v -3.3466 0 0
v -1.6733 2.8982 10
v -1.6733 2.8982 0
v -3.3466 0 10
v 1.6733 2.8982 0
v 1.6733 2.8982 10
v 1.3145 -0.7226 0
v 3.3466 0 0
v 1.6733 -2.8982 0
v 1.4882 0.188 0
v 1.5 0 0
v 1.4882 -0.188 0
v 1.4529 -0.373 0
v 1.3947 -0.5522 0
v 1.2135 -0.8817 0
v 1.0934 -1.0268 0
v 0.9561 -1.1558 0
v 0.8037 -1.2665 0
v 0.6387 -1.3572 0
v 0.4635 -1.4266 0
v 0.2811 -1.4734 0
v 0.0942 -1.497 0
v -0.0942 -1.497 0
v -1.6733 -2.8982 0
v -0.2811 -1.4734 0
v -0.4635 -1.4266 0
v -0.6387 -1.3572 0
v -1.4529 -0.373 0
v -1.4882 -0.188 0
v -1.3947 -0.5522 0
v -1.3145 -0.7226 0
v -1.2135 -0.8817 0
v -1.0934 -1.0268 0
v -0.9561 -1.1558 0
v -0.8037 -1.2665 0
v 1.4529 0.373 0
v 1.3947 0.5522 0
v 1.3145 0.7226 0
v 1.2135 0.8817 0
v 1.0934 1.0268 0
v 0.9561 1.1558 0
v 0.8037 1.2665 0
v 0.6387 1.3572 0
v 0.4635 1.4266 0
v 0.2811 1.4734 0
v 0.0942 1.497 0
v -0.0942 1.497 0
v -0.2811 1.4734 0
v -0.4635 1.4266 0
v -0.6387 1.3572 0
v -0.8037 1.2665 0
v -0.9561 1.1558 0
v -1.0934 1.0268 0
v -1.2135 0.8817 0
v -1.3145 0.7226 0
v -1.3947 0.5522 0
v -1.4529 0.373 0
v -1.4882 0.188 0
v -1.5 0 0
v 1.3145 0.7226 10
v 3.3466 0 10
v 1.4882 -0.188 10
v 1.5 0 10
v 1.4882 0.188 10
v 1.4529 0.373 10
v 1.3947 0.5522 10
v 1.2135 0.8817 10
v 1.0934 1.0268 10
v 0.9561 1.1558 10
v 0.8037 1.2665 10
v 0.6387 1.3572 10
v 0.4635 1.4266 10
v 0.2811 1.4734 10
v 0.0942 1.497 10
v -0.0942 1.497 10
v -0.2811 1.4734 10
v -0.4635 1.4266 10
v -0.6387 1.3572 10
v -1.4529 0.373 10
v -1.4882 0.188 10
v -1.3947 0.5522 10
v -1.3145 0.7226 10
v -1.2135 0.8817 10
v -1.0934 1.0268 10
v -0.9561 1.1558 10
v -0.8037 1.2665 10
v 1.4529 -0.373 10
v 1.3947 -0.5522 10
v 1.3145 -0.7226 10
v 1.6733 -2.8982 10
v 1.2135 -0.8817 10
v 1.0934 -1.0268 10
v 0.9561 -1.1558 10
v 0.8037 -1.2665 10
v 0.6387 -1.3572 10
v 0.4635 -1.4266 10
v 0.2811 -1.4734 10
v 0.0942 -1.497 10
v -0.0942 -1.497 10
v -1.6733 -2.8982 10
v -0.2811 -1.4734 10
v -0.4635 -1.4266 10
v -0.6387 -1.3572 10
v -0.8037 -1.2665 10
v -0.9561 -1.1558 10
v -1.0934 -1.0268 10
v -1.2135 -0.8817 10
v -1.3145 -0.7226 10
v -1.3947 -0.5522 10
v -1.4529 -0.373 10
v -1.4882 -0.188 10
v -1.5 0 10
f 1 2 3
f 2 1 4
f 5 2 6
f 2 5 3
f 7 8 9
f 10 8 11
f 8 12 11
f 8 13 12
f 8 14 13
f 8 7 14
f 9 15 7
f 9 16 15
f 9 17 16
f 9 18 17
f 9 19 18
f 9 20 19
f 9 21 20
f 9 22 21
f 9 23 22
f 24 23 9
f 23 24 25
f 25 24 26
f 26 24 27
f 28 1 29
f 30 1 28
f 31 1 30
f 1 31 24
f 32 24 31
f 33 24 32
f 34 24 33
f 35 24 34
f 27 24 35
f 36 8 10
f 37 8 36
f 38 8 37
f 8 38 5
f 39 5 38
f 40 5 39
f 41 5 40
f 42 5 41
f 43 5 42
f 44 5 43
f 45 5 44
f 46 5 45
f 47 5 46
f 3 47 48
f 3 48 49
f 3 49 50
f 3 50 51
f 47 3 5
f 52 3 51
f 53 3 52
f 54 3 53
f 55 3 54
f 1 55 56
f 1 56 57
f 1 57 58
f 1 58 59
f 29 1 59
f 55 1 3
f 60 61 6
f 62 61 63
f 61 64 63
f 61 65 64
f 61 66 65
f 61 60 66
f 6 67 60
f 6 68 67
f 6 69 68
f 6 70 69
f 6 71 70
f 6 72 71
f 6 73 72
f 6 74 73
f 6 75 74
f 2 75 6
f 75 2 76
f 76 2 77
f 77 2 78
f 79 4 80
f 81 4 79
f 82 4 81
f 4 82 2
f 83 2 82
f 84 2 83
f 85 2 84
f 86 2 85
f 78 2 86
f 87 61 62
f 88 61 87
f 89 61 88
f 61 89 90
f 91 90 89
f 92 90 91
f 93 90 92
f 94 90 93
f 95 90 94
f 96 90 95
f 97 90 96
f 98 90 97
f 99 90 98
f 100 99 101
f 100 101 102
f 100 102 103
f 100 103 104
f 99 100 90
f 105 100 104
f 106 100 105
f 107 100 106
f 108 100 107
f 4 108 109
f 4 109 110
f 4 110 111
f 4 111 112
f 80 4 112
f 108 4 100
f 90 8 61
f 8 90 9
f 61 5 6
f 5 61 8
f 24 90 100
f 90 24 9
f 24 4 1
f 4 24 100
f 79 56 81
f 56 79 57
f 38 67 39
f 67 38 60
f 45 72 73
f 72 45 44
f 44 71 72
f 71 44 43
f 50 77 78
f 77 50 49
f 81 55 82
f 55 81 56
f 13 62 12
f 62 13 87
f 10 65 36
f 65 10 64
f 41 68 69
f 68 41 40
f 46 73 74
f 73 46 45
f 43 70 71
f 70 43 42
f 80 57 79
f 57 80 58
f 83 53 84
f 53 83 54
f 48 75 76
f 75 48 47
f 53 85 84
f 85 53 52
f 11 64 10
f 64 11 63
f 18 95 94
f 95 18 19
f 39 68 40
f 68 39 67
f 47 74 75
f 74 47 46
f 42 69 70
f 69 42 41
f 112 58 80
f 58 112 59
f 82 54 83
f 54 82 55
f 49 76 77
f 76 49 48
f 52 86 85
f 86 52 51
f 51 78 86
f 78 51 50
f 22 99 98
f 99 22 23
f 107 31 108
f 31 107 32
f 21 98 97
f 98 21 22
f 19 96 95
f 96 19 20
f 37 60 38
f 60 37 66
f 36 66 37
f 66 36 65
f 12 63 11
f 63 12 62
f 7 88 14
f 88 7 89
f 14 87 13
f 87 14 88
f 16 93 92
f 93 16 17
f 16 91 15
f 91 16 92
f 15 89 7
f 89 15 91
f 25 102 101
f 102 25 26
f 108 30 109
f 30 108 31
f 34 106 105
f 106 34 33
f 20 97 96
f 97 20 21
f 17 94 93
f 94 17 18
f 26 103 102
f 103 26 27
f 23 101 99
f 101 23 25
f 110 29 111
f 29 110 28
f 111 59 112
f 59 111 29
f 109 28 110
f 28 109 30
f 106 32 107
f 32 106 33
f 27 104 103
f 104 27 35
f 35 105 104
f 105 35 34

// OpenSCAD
$fn = 50;


difference() {
	union() {
		linear_extrude(height = 10) {
			polygon(points = [[3.3466000000, 0.0000000000], [1.6733000000, 2.8982406163], [-1.6733000000, 2.8982406163], [-3.3466000000, 0.0000000000], [-1.6733000000, -2.8982406163], [1.6733000000, -2.8982406163]]);
		}
	}
	union() {
		cylinder(h = 10, r = 1.5000000000);
	}
}
